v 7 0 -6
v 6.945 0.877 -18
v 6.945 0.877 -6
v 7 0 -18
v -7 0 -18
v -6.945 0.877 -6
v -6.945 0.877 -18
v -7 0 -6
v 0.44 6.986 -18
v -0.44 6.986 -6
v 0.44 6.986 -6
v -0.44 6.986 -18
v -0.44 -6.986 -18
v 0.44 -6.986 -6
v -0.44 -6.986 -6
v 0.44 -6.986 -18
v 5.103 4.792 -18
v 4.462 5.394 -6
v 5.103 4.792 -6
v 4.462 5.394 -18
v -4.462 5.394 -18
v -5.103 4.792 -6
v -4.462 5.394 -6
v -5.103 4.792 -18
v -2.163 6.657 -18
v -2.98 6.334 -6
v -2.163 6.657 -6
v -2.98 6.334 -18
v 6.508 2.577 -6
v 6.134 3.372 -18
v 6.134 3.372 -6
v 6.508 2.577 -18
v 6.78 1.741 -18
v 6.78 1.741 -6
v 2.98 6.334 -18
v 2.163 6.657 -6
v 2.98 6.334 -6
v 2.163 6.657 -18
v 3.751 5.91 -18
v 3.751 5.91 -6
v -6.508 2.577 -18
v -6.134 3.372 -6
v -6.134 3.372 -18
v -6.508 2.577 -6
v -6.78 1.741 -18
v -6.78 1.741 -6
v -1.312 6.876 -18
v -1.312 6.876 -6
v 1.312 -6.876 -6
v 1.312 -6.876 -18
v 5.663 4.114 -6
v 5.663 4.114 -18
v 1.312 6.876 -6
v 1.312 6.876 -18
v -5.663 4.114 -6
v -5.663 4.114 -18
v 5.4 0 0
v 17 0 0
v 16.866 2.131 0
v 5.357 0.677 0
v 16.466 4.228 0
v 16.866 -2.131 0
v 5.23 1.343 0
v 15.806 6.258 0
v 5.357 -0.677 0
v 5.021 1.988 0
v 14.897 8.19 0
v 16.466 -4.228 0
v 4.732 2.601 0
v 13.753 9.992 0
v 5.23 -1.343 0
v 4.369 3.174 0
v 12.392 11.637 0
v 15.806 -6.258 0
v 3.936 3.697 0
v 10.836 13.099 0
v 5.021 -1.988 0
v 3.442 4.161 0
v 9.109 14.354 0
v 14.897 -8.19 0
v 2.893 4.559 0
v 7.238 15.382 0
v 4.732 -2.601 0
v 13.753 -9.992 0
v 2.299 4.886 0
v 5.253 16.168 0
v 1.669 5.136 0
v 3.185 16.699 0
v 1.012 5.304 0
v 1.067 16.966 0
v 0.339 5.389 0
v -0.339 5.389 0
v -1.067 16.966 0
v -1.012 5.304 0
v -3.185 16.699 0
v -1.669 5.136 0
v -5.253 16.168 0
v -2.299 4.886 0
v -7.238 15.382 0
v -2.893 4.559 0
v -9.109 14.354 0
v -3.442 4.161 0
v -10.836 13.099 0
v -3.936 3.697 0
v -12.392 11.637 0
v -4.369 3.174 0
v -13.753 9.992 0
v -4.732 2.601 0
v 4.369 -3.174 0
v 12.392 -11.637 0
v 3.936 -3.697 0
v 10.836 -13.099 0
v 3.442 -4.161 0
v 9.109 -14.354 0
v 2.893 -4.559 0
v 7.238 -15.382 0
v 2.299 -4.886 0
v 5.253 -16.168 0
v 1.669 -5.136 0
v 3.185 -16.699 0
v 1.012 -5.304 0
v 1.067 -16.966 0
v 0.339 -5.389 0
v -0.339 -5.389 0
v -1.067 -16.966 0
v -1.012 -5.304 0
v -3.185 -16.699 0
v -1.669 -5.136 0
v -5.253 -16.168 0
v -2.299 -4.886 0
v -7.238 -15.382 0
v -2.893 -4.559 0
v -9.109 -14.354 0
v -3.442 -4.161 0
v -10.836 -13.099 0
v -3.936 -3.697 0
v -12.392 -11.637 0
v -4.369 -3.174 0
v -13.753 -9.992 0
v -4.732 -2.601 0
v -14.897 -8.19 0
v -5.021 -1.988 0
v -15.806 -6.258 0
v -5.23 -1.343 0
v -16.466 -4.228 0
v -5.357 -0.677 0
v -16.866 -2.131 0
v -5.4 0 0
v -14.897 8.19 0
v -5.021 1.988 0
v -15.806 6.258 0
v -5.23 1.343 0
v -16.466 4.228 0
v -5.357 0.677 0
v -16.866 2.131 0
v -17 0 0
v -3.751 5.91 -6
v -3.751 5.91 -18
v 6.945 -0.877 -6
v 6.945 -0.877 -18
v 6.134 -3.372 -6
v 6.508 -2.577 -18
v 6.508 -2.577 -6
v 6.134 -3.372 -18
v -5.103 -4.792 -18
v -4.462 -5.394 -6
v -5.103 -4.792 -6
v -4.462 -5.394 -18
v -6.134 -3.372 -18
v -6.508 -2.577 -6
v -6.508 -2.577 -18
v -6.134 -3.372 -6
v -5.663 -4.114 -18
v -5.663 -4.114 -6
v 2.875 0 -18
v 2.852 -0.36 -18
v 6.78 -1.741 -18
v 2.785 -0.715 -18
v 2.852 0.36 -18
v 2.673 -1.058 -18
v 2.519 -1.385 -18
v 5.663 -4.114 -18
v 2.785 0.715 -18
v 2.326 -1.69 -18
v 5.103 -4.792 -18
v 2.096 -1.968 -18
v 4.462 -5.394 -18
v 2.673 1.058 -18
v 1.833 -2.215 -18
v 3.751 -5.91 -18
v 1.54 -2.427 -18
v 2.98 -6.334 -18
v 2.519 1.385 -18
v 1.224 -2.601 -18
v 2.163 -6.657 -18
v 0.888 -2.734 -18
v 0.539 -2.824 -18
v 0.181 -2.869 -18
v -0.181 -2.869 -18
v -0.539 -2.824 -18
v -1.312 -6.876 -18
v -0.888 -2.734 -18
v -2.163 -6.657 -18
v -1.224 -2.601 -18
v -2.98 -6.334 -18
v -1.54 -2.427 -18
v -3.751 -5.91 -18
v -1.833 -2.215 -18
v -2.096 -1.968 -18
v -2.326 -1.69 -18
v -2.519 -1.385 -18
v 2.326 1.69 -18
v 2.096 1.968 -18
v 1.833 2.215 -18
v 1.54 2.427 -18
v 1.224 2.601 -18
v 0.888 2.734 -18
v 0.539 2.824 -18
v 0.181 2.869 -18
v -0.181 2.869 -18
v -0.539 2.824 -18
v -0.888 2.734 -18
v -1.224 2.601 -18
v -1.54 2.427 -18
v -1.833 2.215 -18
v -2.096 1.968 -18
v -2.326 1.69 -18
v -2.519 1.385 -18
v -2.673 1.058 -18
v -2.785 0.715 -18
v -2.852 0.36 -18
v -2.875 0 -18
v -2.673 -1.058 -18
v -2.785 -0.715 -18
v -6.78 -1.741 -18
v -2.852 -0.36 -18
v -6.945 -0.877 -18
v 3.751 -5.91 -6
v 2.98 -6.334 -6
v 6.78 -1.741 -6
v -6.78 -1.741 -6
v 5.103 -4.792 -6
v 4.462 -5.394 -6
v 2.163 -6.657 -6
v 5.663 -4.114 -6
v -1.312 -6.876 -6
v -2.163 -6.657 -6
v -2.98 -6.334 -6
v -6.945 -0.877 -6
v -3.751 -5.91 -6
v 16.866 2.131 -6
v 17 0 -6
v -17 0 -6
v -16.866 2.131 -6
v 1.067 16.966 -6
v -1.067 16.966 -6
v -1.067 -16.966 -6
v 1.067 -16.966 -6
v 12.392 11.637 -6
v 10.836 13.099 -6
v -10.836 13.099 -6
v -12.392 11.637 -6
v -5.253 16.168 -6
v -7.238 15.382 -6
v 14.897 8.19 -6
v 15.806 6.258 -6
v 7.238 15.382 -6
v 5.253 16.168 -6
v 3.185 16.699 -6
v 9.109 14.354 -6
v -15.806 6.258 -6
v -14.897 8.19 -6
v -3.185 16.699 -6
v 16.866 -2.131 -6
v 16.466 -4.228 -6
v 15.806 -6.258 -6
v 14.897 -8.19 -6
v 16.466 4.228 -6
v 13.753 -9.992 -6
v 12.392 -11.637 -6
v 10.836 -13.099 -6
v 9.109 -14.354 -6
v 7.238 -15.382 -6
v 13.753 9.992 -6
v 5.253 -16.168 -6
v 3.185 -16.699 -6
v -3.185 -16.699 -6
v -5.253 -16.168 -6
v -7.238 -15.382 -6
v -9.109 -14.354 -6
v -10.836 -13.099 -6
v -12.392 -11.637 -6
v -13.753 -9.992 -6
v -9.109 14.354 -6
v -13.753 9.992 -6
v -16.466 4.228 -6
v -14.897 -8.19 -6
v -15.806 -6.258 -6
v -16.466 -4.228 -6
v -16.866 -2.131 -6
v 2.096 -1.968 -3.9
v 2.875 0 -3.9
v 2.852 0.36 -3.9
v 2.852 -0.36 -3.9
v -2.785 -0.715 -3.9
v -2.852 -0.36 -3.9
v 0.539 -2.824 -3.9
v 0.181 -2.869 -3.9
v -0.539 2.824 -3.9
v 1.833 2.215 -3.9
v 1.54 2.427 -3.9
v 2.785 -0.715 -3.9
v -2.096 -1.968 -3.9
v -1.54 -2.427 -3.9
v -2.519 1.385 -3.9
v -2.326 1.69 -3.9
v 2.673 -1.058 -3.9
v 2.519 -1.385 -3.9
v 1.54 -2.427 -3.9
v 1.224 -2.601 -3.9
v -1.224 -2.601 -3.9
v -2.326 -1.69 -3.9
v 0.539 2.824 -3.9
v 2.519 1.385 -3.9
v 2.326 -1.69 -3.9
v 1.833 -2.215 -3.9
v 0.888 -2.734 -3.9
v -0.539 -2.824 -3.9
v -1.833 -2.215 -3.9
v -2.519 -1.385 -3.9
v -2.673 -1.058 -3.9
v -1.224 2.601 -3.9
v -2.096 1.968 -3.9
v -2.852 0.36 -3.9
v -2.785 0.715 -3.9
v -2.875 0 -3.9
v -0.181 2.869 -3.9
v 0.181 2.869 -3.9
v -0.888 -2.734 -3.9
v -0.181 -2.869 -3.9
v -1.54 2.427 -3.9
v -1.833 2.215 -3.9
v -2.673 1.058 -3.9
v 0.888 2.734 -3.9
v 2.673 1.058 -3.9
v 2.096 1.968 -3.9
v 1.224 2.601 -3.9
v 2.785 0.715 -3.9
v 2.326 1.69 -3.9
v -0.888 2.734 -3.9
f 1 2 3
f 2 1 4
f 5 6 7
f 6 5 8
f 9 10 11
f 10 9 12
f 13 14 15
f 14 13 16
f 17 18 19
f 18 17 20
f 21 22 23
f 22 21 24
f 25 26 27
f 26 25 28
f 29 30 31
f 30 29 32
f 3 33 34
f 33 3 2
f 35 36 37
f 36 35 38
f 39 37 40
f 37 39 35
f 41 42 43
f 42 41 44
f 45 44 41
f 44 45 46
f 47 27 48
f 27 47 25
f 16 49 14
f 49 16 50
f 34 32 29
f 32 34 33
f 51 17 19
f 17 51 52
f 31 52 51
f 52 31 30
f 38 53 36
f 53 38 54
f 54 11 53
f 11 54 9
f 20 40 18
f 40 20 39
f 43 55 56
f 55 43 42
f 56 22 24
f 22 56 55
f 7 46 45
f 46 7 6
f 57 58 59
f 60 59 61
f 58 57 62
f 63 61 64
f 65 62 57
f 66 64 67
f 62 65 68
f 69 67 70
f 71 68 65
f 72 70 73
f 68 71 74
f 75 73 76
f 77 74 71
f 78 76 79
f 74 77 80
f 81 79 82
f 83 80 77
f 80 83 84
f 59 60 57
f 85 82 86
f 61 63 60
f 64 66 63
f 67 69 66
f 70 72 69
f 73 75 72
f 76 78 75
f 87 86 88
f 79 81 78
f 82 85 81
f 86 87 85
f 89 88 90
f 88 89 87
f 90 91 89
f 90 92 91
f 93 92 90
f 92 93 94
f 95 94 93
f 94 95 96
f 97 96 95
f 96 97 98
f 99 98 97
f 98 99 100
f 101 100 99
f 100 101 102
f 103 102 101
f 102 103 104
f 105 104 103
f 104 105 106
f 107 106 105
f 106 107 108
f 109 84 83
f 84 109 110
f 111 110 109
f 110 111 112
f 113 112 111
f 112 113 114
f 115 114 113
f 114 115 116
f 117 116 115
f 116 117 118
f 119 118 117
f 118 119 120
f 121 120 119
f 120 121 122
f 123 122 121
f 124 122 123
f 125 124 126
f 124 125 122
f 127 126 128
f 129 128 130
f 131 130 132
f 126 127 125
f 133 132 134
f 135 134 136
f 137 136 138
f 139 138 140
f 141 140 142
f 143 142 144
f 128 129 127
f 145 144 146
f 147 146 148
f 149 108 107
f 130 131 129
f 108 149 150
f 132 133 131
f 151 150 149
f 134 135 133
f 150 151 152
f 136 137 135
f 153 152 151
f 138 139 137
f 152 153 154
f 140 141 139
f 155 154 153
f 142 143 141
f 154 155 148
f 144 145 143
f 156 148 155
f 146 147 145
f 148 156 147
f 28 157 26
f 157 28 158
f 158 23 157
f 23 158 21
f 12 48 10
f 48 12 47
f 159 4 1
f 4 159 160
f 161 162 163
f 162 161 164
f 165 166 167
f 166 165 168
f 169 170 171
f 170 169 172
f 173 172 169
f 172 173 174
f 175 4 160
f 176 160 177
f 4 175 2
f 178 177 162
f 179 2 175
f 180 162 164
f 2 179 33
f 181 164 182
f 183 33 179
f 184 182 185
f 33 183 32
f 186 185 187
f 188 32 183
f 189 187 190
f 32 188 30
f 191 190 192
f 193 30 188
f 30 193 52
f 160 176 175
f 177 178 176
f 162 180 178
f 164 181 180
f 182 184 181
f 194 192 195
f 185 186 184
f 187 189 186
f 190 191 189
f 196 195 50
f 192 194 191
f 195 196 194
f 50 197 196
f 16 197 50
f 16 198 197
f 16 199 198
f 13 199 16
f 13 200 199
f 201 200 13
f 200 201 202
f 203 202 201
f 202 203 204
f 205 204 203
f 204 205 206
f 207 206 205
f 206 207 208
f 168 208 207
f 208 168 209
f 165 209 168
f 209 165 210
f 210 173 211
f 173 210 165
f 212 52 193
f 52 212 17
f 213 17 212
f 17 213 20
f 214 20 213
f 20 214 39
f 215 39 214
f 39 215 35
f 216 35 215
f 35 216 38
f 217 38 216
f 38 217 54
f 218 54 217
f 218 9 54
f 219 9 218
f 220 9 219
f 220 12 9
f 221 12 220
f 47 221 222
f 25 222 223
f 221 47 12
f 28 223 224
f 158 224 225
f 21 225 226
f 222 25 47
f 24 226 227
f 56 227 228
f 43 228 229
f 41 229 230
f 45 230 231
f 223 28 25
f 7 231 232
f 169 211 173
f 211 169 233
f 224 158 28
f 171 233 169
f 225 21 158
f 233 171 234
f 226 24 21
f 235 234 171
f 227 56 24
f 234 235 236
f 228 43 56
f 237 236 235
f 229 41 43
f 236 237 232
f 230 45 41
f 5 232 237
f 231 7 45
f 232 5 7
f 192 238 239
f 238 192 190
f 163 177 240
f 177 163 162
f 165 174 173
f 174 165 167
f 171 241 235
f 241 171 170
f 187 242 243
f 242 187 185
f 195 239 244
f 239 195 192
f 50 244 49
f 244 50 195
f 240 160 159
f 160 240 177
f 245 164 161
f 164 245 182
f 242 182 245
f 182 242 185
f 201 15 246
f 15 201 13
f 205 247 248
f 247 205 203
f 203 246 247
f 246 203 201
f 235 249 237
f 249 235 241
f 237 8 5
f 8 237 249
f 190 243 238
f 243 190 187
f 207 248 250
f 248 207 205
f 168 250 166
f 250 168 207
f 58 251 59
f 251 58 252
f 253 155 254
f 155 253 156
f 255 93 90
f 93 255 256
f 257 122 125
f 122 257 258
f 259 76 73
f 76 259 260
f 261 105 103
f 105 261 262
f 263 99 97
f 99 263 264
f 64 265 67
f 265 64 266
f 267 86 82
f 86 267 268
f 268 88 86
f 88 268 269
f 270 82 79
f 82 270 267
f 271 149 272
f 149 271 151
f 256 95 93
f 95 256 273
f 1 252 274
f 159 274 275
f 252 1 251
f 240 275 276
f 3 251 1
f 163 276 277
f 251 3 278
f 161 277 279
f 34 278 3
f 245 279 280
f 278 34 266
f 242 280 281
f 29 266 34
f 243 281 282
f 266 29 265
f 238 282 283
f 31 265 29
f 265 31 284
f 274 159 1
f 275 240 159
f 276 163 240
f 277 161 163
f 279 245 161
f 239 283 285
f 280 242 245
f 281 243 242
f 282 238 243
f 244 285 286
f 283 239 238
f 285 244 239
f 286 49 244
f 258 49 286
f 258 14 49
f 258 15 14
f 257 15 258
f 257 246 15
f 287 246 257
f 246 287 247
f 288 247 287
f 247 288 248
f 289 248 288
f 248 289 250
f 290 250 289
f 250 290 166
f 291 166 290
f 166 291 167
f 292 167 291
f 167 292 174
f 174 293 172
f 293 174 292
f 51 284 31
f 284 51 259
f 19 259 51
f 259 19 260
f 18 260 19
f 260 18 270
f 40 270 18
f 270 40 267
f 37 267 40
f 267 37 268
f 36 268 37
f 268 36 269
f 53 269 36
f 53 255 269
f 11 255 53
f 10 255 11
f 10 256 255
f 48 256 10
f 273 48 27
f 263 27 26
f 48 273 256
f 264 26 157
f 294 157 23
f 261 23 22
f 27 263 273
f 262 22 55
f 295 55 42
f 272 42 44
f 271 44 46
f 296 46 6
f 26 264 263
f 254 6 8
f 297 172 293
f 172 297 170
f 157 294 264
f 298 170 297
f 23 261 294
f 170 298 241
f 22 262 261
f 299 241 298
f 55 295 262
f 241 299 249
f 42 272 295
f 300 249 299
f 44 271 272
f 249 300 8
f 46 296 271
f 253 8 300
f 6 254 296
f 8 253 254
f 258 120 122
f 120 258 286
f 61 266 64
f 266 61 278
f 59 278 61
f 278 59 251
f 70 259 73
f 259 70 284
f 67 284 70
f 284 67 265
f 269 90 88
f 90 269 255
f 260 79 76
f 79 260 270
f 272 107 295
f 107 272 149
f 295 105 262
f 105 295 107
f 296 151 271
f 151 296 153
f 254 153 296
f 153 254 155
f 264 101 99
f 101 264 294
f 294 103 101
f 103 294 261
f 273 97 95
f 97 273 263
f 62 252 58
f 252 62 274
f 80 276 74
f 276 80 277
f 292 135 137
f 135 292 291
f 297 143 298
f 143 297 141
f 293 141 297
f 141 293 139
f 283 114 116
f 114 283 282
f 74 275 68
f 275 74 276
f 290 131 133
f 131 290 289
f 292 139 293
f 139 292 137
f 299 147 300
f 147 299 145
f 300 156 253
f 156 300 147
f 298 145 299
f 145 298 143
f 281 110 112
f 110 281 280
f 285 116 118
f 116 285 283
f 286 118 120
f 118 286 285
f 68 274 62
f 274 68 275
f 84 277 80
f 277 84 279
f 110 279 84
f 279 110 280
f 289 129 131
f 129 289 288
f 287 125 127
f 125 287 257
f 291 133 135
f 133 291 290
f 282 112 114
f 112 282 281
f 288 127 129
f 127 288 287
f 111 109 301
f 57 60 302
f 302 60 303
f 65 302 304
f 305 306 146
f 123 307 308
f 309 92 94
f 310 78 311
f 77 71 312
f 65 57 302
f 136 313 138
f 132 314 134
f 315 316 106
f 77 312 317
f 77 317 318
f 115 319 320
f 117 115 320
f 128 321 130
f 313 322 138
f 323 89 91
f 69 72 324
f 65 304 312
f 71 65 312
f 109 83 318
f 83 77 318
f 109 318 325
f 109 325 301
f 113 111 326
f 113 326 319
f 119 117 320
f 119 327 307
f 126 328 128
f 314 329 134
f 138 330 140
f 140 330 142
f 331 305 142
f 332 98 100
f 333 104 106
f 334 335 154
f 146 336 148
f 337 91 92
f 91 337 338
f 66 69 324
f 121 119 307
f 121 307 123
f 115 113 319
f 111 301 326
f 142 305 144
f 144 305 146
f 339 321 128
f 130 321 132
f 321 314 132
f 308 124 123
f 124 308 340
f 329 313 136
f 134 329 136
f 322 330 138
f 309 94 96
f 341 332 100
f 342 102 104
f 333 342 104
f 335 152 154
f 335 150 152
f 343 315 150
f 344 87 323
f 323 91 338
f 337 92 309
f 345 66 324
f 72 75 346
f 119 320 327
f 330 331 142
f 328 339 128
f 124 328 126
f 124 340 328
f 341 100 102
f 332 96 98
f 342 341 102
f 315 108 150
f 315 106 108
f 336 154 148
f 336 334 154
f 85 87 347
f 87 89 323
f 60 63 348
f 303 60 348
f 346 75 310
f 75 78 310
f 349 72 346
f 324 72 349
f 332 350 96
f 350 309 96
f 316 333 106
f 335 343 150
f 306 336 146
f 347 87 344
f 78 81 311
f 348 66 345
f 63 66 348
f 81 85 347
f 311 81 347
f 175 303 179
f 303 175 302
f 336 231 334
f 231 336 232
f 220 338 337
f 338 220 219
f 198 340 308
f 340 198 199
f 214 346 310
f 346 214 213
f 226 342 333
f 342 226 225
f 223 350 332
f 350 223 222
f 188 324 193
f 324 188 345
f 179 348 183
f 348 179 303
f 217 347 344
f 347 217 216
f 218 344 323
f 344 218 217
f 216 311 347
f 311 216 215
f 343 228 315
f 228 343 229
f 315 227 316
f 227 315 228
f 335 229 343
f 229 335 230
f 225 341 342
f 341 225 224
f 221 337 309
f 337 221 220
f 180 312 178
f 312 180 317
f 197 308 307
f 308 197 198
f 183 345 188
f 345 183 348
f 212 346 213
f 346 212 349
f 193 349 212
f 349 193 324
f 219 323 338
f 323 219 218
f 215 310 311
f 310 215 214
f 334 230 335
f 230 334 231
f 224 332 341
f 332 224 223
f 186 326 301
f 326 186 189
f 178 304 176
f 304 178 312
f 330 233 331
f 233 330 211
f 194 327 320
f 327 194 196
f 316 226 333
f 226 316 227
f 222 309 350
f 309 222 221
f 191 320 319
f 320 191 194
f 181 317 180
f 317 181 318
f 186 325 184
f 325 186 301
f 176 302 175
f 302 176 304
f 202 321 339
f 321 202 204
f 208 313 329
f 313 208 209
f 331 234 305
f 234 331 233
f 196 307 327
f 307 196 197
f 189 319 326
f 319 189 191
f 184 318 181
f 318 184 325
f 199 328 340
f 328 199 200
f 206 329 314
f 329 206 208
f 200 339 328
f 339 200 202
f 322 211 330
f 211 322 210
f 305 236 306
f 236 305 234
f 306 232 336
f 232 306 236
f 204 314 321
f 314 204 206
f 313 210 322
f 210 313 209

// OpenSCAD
$fn = 50;


difference() {
	union() {
		translate(v = [0, 0, -18.0000000000]) {
			cylinder(h = 18, r = 7.0000000000);
		}
		translate(v = [0, 0, -6.0000000000]) {
			cylinder(h = 6, r = 17.0000000000);
		}
	}
	union() {
		translate(v = [0, 0, 0]) {
			rotate(a = [0, 0, 0]) {
				difference() {
					union() {
						#translate(v = [0, 0, -18.0000000000]) {
							cylinder(h = 18, r = 2.6000000000);
						}
						#translate(v = [0, 0, -3.9000000000]) {
							cylinder(h = 3.9000000000, r1 = 2.8750000000, r2 = 5.4000000000);
						}
						#translate(v = [0, 0, -18.0000000000]) {
							cylinder(h = 18, r = 2.8750000000);
						}
						#translate(v = [0, 0, -18.0000000000]) {
							cylinder(h = 18, r = 2.6000000000);
						}
					}
					union();
				}
			}
		}
	}
}
